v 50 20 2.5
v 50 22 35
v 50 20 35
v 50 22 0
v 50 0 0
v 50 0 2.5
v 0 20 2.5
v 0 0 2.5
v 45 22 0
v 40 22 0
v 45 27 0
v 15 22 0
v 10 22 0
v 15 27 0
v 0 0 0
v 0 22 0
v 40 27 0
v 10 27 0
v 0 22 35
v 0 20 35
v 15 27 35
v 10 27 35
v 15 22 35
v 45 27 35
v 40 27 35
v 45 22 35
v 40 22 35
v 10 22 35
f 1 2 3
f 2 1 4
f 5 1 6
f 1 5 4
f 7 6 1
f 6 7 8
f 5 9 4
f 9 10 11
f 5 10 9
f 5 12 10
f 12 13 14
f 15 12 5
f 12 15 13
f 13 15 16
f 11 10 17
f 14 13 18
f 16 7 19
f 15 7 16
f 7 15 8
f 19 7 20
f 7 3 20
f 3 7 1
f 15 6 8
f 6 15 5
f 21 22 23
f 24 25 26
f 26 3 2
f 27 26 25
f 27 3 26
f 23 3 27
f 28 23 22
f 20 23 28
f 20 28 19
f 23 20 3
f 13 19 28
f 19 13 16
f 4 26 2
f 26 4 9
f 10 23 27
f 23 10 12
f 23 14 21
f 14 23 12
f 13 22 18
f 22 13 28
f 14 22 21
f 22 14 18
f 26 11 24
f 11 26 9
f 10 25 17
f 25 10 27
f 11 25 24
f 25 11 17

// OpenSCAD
$fn=150;

LENGTH_X = 50;
BASE_Y = 20;
BASE_HEIGHT = 2.5;

SPINE_HEIGHT = 35;
SPINE_BASE_WIDTH = 5;

cube([LENGTH_X,BASE_Y,BASE_HEIGHT]);
translate([0,BASE_Y,0])cube([LENGTH_X,2,SPINE_HEIGHT]);

translate([2*SPINE_BASE_WIDTH,BASE_Y+2,0])cube([SPINE_BASE_WIDTH,SPINE_BASE_WIDTH,SPINE_HEIGHT]);
translate([LENGTH_X-2*SPINE_BASE_WIDTH,BASE_Y+2,0])cube([SPINE_BASE_WIDTH,SPINE_BASE_WIDTH,SPINE_HEIGHT]);
